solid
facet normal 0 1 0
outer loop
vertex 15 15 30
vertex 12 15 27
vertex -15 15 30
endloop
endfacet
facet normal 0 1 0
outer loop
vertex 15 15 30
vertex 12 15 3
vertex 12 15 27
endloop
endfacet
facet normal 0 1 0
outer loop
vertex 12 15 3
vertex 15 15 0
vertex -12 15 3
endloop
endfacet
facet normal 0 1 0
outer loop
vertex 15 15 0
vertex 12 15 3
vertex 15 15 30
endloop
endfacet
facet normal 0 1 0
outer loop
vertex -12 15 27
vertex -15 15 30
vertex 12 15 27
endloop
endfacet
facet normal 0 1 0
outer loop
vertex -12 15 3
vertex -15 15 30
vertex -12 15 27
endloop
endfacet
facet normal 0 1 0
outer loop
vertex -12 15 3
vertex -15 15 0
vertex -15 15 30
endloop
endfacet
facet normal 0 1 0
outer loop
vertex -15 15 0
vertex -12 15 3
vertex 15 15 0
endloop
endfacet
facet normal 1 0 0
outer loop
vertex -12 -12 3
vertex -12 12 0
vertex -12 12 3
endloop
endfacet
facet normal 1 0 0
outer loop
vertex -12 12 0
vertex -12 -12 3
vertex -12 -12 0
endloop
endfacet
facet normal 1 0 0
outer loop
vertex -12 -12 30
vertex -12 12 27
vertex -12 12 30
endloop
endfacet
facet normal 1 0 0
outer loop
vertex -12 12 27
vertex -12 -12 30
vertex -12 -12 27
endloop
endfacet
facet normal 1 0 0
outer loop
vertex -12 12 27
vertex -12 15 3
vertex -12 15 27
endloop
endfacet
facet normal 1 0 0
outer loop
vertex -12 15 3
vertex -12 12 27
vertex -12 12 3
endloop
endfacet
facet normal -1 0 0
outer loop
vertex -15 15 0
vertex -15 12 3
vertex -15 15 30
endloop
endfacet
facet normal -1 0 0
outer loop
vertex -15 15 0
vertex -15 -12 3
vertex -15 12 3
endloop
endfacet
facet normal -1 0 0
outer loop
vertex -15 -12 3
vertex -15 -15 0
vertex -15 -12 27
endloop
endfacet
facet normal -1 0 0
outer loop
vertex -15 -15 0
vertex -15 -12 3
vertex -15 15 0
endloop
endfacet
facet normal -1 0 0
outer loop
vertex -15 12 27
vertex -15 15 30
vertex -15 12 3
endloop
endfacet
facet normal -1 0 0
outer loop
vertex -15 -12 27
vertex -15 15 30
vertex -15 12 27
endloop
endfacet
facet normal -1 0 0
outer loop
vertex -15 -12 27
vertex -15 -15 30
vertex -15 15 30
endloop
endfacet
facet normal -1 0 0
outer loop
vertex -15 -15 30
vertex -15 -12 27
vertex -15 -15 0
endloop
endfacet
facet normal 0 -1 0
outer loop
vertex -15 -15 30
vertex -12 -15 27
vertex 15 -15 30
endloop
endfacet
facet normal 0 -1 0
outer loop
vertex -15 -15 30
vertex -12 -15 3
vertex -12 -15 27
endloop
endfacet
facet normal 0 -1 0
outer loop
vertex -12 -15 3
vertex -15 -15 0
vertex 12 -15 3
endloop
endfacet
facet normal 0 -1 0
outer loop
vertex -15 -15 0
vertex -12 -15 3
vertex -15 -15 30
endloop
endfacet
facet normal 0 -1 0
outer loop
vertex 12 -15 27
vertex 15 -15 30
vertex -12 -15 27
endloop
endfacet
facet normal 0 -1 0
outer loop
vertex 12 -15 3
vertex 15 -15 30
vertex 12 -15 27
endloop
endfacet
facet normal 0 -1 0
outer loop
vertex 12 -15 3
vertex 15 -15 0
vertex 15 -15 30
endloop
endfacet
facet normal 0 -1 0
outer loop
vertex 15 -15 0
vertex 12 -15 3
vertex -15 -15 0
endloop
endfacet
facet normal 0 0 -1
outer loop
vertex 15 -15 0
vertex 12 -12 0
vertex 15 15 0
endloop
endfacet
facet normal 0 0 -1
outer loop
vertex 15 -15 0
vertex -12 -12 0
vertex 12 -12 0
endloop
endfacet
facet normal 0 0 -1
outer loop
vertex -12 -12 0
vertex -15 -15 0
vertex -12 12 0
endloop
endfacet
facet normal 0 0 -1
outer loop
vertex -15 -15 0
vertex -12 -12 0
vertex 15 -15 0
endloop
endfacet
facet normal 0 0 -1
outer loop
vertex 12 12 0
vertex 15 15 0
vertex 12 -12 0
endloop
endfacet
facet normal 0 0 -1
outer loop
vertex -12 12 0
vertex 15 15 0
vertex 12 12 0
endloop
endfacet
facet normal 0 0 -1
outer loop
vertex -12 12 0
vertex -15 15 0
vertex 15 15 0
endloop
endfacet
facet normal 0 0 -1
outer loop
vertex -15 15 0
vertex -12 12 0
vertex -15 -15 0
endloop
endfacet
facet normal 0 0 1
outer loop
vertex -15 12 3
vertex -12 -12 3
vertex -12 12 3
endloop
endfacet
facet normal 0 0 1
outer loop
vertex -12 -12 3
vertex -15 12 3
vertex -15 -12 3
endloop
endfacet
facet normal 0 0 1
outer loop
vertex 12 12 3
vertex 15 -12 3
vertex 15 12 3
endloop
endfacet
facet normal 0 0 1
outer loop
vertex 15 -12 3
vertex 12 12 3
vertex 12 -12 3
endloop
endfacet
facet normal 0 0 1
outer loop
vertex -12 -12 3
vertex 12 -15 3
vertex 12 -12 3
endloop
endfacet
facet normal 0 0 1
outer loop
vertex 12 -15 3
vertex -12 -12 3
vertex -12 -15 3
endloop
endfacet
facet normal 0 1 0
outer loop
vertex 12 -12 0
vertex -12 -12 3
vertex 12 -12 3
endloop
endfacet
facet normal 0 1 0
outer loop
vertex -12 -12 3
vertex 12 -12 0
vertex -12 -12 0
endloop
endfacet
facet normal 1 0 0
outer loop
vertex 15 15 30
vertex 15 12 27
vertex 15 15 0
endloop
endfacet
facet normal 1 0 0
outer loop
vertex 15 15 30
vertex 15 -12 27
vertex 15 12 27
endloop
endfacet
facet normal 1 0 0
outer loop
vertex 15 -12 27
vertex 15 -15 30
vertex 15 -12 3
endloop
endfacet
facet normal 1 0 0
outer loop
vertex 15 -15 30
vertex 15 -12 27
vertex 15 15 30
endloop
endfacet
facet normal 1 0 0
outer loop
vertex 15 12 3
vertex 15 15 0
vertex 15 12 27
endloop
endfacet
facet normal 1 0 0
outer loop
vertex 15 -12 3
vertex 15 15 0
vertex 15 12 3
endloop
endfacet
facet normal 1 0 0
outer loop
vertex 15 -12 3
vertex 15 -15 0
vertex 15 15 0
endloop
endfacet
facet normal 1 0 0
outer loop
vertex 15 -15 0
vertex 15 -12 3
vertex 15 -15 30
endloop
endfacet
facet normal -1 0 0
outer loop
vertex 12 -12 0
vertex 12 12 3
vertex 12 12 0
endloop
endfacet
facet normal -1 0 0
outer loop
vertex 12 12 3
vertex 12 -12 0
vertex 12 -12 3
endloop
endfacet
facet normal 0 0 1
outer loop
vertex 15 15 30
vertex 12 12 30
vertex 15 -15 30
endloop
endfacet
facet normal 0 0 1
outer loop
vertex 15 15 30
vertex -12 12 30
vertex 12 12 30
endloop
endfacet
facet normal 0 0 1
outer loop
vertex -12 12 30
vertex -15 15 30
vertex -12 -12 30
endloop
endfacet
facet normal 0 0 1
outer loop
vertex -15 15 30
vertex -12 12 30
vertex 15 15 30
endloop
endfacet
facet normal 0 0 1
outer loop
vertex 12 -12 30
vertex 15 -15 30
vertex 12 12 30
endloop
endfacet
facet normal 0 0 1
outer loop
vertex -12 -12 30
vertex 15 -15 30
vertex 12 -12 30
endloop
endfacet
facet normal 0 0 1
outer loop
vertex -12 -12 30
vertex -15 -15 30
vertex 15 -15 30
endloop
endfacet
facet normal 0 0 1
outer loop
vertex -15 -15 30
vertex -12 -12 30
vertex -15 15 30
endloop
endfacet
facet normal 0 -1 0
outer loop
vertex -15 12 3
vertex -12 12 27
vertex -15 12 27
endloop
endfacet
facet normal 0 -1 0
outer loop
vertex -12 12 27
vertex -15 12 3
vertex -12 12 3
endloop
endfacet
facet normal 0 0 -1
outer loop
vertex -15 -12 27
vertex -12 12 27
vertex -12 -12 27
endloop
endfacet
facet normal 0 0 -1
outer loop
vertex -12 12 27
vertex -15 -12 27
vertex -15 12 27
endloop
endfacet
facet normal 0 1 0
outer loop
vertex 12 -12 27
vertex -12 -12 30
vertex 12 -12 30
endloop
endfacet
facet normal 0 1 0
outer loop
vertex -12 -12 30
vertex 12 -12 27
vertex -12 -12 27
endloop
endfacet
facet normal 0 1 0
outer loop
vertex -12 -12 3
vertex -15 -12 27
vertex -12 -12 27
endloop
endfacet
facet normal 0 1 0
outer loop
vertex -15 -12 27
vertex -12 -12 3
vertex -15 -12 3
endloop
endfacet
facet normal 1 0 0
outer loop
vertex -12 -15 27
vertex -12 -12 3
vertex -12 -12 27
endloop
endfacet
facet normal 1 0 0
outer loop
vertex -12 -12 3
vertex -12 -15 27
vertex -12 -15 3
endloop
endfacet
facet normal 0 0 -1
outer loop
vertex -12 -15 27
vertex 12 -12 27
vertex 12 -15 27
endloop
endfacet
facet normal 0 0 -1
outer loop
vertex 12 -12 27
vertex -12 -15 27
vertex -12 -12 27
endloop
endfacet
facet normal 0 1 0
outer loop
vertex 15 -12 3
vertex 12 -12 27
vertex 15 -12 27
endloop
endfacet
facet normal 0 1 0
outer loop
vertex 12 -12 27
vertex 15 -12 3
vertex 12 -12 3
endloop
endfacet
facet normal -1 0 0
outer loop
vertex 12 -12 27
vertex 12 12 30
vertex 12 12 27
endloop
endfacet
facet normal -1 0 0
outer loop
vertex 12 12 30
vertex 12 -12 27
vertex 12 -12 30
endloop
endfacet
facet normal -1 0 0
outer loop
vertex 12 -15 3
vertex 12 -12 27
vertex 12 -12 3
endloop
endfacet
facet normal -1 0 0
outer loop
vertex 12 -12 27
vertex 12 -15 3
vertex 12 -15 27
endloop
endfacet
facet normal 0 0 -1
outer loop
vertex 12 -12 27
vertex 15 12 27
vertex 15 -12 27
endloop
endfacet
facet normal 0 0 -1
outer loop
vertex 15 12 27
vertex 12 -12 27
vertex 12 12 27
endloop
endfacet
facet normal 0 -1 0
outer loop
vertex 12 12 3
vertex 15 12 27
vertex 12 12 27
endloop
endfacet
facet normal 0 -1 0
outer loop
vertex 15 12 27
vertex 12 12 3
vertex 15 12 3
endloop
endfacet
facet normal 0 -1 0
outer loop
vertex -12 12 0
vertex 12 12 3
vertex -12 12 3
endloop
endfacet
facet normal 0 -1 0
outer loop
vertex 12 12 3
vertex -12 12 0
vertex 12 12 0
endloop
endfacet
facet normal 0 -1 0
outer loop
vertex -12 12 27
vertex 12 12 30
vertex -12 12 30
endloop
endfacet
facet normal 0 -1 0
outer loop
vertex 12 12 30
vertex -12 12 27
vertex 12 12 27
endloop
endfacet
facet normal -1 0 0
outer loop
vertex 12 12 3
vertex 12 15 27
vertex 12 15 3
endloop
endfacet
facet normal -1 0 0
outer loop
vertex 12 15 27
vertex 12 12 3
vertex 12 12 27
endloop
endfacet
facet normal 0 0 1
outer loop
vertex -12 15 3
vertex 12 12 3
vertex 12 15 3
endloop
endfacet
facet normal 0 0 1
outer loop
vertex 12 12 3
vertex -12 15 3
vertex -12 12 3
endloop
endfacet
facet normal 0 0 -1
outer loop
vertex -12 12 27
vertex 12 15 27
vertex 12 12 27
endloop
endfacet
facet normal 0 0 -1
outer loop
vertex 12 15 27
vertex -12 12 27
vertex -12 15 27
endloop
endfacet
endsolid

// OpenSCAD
// shape height
sh = 30;
// border width
bw = 3;

include <../polyhedra.scad>;

poly_wire(cube);
